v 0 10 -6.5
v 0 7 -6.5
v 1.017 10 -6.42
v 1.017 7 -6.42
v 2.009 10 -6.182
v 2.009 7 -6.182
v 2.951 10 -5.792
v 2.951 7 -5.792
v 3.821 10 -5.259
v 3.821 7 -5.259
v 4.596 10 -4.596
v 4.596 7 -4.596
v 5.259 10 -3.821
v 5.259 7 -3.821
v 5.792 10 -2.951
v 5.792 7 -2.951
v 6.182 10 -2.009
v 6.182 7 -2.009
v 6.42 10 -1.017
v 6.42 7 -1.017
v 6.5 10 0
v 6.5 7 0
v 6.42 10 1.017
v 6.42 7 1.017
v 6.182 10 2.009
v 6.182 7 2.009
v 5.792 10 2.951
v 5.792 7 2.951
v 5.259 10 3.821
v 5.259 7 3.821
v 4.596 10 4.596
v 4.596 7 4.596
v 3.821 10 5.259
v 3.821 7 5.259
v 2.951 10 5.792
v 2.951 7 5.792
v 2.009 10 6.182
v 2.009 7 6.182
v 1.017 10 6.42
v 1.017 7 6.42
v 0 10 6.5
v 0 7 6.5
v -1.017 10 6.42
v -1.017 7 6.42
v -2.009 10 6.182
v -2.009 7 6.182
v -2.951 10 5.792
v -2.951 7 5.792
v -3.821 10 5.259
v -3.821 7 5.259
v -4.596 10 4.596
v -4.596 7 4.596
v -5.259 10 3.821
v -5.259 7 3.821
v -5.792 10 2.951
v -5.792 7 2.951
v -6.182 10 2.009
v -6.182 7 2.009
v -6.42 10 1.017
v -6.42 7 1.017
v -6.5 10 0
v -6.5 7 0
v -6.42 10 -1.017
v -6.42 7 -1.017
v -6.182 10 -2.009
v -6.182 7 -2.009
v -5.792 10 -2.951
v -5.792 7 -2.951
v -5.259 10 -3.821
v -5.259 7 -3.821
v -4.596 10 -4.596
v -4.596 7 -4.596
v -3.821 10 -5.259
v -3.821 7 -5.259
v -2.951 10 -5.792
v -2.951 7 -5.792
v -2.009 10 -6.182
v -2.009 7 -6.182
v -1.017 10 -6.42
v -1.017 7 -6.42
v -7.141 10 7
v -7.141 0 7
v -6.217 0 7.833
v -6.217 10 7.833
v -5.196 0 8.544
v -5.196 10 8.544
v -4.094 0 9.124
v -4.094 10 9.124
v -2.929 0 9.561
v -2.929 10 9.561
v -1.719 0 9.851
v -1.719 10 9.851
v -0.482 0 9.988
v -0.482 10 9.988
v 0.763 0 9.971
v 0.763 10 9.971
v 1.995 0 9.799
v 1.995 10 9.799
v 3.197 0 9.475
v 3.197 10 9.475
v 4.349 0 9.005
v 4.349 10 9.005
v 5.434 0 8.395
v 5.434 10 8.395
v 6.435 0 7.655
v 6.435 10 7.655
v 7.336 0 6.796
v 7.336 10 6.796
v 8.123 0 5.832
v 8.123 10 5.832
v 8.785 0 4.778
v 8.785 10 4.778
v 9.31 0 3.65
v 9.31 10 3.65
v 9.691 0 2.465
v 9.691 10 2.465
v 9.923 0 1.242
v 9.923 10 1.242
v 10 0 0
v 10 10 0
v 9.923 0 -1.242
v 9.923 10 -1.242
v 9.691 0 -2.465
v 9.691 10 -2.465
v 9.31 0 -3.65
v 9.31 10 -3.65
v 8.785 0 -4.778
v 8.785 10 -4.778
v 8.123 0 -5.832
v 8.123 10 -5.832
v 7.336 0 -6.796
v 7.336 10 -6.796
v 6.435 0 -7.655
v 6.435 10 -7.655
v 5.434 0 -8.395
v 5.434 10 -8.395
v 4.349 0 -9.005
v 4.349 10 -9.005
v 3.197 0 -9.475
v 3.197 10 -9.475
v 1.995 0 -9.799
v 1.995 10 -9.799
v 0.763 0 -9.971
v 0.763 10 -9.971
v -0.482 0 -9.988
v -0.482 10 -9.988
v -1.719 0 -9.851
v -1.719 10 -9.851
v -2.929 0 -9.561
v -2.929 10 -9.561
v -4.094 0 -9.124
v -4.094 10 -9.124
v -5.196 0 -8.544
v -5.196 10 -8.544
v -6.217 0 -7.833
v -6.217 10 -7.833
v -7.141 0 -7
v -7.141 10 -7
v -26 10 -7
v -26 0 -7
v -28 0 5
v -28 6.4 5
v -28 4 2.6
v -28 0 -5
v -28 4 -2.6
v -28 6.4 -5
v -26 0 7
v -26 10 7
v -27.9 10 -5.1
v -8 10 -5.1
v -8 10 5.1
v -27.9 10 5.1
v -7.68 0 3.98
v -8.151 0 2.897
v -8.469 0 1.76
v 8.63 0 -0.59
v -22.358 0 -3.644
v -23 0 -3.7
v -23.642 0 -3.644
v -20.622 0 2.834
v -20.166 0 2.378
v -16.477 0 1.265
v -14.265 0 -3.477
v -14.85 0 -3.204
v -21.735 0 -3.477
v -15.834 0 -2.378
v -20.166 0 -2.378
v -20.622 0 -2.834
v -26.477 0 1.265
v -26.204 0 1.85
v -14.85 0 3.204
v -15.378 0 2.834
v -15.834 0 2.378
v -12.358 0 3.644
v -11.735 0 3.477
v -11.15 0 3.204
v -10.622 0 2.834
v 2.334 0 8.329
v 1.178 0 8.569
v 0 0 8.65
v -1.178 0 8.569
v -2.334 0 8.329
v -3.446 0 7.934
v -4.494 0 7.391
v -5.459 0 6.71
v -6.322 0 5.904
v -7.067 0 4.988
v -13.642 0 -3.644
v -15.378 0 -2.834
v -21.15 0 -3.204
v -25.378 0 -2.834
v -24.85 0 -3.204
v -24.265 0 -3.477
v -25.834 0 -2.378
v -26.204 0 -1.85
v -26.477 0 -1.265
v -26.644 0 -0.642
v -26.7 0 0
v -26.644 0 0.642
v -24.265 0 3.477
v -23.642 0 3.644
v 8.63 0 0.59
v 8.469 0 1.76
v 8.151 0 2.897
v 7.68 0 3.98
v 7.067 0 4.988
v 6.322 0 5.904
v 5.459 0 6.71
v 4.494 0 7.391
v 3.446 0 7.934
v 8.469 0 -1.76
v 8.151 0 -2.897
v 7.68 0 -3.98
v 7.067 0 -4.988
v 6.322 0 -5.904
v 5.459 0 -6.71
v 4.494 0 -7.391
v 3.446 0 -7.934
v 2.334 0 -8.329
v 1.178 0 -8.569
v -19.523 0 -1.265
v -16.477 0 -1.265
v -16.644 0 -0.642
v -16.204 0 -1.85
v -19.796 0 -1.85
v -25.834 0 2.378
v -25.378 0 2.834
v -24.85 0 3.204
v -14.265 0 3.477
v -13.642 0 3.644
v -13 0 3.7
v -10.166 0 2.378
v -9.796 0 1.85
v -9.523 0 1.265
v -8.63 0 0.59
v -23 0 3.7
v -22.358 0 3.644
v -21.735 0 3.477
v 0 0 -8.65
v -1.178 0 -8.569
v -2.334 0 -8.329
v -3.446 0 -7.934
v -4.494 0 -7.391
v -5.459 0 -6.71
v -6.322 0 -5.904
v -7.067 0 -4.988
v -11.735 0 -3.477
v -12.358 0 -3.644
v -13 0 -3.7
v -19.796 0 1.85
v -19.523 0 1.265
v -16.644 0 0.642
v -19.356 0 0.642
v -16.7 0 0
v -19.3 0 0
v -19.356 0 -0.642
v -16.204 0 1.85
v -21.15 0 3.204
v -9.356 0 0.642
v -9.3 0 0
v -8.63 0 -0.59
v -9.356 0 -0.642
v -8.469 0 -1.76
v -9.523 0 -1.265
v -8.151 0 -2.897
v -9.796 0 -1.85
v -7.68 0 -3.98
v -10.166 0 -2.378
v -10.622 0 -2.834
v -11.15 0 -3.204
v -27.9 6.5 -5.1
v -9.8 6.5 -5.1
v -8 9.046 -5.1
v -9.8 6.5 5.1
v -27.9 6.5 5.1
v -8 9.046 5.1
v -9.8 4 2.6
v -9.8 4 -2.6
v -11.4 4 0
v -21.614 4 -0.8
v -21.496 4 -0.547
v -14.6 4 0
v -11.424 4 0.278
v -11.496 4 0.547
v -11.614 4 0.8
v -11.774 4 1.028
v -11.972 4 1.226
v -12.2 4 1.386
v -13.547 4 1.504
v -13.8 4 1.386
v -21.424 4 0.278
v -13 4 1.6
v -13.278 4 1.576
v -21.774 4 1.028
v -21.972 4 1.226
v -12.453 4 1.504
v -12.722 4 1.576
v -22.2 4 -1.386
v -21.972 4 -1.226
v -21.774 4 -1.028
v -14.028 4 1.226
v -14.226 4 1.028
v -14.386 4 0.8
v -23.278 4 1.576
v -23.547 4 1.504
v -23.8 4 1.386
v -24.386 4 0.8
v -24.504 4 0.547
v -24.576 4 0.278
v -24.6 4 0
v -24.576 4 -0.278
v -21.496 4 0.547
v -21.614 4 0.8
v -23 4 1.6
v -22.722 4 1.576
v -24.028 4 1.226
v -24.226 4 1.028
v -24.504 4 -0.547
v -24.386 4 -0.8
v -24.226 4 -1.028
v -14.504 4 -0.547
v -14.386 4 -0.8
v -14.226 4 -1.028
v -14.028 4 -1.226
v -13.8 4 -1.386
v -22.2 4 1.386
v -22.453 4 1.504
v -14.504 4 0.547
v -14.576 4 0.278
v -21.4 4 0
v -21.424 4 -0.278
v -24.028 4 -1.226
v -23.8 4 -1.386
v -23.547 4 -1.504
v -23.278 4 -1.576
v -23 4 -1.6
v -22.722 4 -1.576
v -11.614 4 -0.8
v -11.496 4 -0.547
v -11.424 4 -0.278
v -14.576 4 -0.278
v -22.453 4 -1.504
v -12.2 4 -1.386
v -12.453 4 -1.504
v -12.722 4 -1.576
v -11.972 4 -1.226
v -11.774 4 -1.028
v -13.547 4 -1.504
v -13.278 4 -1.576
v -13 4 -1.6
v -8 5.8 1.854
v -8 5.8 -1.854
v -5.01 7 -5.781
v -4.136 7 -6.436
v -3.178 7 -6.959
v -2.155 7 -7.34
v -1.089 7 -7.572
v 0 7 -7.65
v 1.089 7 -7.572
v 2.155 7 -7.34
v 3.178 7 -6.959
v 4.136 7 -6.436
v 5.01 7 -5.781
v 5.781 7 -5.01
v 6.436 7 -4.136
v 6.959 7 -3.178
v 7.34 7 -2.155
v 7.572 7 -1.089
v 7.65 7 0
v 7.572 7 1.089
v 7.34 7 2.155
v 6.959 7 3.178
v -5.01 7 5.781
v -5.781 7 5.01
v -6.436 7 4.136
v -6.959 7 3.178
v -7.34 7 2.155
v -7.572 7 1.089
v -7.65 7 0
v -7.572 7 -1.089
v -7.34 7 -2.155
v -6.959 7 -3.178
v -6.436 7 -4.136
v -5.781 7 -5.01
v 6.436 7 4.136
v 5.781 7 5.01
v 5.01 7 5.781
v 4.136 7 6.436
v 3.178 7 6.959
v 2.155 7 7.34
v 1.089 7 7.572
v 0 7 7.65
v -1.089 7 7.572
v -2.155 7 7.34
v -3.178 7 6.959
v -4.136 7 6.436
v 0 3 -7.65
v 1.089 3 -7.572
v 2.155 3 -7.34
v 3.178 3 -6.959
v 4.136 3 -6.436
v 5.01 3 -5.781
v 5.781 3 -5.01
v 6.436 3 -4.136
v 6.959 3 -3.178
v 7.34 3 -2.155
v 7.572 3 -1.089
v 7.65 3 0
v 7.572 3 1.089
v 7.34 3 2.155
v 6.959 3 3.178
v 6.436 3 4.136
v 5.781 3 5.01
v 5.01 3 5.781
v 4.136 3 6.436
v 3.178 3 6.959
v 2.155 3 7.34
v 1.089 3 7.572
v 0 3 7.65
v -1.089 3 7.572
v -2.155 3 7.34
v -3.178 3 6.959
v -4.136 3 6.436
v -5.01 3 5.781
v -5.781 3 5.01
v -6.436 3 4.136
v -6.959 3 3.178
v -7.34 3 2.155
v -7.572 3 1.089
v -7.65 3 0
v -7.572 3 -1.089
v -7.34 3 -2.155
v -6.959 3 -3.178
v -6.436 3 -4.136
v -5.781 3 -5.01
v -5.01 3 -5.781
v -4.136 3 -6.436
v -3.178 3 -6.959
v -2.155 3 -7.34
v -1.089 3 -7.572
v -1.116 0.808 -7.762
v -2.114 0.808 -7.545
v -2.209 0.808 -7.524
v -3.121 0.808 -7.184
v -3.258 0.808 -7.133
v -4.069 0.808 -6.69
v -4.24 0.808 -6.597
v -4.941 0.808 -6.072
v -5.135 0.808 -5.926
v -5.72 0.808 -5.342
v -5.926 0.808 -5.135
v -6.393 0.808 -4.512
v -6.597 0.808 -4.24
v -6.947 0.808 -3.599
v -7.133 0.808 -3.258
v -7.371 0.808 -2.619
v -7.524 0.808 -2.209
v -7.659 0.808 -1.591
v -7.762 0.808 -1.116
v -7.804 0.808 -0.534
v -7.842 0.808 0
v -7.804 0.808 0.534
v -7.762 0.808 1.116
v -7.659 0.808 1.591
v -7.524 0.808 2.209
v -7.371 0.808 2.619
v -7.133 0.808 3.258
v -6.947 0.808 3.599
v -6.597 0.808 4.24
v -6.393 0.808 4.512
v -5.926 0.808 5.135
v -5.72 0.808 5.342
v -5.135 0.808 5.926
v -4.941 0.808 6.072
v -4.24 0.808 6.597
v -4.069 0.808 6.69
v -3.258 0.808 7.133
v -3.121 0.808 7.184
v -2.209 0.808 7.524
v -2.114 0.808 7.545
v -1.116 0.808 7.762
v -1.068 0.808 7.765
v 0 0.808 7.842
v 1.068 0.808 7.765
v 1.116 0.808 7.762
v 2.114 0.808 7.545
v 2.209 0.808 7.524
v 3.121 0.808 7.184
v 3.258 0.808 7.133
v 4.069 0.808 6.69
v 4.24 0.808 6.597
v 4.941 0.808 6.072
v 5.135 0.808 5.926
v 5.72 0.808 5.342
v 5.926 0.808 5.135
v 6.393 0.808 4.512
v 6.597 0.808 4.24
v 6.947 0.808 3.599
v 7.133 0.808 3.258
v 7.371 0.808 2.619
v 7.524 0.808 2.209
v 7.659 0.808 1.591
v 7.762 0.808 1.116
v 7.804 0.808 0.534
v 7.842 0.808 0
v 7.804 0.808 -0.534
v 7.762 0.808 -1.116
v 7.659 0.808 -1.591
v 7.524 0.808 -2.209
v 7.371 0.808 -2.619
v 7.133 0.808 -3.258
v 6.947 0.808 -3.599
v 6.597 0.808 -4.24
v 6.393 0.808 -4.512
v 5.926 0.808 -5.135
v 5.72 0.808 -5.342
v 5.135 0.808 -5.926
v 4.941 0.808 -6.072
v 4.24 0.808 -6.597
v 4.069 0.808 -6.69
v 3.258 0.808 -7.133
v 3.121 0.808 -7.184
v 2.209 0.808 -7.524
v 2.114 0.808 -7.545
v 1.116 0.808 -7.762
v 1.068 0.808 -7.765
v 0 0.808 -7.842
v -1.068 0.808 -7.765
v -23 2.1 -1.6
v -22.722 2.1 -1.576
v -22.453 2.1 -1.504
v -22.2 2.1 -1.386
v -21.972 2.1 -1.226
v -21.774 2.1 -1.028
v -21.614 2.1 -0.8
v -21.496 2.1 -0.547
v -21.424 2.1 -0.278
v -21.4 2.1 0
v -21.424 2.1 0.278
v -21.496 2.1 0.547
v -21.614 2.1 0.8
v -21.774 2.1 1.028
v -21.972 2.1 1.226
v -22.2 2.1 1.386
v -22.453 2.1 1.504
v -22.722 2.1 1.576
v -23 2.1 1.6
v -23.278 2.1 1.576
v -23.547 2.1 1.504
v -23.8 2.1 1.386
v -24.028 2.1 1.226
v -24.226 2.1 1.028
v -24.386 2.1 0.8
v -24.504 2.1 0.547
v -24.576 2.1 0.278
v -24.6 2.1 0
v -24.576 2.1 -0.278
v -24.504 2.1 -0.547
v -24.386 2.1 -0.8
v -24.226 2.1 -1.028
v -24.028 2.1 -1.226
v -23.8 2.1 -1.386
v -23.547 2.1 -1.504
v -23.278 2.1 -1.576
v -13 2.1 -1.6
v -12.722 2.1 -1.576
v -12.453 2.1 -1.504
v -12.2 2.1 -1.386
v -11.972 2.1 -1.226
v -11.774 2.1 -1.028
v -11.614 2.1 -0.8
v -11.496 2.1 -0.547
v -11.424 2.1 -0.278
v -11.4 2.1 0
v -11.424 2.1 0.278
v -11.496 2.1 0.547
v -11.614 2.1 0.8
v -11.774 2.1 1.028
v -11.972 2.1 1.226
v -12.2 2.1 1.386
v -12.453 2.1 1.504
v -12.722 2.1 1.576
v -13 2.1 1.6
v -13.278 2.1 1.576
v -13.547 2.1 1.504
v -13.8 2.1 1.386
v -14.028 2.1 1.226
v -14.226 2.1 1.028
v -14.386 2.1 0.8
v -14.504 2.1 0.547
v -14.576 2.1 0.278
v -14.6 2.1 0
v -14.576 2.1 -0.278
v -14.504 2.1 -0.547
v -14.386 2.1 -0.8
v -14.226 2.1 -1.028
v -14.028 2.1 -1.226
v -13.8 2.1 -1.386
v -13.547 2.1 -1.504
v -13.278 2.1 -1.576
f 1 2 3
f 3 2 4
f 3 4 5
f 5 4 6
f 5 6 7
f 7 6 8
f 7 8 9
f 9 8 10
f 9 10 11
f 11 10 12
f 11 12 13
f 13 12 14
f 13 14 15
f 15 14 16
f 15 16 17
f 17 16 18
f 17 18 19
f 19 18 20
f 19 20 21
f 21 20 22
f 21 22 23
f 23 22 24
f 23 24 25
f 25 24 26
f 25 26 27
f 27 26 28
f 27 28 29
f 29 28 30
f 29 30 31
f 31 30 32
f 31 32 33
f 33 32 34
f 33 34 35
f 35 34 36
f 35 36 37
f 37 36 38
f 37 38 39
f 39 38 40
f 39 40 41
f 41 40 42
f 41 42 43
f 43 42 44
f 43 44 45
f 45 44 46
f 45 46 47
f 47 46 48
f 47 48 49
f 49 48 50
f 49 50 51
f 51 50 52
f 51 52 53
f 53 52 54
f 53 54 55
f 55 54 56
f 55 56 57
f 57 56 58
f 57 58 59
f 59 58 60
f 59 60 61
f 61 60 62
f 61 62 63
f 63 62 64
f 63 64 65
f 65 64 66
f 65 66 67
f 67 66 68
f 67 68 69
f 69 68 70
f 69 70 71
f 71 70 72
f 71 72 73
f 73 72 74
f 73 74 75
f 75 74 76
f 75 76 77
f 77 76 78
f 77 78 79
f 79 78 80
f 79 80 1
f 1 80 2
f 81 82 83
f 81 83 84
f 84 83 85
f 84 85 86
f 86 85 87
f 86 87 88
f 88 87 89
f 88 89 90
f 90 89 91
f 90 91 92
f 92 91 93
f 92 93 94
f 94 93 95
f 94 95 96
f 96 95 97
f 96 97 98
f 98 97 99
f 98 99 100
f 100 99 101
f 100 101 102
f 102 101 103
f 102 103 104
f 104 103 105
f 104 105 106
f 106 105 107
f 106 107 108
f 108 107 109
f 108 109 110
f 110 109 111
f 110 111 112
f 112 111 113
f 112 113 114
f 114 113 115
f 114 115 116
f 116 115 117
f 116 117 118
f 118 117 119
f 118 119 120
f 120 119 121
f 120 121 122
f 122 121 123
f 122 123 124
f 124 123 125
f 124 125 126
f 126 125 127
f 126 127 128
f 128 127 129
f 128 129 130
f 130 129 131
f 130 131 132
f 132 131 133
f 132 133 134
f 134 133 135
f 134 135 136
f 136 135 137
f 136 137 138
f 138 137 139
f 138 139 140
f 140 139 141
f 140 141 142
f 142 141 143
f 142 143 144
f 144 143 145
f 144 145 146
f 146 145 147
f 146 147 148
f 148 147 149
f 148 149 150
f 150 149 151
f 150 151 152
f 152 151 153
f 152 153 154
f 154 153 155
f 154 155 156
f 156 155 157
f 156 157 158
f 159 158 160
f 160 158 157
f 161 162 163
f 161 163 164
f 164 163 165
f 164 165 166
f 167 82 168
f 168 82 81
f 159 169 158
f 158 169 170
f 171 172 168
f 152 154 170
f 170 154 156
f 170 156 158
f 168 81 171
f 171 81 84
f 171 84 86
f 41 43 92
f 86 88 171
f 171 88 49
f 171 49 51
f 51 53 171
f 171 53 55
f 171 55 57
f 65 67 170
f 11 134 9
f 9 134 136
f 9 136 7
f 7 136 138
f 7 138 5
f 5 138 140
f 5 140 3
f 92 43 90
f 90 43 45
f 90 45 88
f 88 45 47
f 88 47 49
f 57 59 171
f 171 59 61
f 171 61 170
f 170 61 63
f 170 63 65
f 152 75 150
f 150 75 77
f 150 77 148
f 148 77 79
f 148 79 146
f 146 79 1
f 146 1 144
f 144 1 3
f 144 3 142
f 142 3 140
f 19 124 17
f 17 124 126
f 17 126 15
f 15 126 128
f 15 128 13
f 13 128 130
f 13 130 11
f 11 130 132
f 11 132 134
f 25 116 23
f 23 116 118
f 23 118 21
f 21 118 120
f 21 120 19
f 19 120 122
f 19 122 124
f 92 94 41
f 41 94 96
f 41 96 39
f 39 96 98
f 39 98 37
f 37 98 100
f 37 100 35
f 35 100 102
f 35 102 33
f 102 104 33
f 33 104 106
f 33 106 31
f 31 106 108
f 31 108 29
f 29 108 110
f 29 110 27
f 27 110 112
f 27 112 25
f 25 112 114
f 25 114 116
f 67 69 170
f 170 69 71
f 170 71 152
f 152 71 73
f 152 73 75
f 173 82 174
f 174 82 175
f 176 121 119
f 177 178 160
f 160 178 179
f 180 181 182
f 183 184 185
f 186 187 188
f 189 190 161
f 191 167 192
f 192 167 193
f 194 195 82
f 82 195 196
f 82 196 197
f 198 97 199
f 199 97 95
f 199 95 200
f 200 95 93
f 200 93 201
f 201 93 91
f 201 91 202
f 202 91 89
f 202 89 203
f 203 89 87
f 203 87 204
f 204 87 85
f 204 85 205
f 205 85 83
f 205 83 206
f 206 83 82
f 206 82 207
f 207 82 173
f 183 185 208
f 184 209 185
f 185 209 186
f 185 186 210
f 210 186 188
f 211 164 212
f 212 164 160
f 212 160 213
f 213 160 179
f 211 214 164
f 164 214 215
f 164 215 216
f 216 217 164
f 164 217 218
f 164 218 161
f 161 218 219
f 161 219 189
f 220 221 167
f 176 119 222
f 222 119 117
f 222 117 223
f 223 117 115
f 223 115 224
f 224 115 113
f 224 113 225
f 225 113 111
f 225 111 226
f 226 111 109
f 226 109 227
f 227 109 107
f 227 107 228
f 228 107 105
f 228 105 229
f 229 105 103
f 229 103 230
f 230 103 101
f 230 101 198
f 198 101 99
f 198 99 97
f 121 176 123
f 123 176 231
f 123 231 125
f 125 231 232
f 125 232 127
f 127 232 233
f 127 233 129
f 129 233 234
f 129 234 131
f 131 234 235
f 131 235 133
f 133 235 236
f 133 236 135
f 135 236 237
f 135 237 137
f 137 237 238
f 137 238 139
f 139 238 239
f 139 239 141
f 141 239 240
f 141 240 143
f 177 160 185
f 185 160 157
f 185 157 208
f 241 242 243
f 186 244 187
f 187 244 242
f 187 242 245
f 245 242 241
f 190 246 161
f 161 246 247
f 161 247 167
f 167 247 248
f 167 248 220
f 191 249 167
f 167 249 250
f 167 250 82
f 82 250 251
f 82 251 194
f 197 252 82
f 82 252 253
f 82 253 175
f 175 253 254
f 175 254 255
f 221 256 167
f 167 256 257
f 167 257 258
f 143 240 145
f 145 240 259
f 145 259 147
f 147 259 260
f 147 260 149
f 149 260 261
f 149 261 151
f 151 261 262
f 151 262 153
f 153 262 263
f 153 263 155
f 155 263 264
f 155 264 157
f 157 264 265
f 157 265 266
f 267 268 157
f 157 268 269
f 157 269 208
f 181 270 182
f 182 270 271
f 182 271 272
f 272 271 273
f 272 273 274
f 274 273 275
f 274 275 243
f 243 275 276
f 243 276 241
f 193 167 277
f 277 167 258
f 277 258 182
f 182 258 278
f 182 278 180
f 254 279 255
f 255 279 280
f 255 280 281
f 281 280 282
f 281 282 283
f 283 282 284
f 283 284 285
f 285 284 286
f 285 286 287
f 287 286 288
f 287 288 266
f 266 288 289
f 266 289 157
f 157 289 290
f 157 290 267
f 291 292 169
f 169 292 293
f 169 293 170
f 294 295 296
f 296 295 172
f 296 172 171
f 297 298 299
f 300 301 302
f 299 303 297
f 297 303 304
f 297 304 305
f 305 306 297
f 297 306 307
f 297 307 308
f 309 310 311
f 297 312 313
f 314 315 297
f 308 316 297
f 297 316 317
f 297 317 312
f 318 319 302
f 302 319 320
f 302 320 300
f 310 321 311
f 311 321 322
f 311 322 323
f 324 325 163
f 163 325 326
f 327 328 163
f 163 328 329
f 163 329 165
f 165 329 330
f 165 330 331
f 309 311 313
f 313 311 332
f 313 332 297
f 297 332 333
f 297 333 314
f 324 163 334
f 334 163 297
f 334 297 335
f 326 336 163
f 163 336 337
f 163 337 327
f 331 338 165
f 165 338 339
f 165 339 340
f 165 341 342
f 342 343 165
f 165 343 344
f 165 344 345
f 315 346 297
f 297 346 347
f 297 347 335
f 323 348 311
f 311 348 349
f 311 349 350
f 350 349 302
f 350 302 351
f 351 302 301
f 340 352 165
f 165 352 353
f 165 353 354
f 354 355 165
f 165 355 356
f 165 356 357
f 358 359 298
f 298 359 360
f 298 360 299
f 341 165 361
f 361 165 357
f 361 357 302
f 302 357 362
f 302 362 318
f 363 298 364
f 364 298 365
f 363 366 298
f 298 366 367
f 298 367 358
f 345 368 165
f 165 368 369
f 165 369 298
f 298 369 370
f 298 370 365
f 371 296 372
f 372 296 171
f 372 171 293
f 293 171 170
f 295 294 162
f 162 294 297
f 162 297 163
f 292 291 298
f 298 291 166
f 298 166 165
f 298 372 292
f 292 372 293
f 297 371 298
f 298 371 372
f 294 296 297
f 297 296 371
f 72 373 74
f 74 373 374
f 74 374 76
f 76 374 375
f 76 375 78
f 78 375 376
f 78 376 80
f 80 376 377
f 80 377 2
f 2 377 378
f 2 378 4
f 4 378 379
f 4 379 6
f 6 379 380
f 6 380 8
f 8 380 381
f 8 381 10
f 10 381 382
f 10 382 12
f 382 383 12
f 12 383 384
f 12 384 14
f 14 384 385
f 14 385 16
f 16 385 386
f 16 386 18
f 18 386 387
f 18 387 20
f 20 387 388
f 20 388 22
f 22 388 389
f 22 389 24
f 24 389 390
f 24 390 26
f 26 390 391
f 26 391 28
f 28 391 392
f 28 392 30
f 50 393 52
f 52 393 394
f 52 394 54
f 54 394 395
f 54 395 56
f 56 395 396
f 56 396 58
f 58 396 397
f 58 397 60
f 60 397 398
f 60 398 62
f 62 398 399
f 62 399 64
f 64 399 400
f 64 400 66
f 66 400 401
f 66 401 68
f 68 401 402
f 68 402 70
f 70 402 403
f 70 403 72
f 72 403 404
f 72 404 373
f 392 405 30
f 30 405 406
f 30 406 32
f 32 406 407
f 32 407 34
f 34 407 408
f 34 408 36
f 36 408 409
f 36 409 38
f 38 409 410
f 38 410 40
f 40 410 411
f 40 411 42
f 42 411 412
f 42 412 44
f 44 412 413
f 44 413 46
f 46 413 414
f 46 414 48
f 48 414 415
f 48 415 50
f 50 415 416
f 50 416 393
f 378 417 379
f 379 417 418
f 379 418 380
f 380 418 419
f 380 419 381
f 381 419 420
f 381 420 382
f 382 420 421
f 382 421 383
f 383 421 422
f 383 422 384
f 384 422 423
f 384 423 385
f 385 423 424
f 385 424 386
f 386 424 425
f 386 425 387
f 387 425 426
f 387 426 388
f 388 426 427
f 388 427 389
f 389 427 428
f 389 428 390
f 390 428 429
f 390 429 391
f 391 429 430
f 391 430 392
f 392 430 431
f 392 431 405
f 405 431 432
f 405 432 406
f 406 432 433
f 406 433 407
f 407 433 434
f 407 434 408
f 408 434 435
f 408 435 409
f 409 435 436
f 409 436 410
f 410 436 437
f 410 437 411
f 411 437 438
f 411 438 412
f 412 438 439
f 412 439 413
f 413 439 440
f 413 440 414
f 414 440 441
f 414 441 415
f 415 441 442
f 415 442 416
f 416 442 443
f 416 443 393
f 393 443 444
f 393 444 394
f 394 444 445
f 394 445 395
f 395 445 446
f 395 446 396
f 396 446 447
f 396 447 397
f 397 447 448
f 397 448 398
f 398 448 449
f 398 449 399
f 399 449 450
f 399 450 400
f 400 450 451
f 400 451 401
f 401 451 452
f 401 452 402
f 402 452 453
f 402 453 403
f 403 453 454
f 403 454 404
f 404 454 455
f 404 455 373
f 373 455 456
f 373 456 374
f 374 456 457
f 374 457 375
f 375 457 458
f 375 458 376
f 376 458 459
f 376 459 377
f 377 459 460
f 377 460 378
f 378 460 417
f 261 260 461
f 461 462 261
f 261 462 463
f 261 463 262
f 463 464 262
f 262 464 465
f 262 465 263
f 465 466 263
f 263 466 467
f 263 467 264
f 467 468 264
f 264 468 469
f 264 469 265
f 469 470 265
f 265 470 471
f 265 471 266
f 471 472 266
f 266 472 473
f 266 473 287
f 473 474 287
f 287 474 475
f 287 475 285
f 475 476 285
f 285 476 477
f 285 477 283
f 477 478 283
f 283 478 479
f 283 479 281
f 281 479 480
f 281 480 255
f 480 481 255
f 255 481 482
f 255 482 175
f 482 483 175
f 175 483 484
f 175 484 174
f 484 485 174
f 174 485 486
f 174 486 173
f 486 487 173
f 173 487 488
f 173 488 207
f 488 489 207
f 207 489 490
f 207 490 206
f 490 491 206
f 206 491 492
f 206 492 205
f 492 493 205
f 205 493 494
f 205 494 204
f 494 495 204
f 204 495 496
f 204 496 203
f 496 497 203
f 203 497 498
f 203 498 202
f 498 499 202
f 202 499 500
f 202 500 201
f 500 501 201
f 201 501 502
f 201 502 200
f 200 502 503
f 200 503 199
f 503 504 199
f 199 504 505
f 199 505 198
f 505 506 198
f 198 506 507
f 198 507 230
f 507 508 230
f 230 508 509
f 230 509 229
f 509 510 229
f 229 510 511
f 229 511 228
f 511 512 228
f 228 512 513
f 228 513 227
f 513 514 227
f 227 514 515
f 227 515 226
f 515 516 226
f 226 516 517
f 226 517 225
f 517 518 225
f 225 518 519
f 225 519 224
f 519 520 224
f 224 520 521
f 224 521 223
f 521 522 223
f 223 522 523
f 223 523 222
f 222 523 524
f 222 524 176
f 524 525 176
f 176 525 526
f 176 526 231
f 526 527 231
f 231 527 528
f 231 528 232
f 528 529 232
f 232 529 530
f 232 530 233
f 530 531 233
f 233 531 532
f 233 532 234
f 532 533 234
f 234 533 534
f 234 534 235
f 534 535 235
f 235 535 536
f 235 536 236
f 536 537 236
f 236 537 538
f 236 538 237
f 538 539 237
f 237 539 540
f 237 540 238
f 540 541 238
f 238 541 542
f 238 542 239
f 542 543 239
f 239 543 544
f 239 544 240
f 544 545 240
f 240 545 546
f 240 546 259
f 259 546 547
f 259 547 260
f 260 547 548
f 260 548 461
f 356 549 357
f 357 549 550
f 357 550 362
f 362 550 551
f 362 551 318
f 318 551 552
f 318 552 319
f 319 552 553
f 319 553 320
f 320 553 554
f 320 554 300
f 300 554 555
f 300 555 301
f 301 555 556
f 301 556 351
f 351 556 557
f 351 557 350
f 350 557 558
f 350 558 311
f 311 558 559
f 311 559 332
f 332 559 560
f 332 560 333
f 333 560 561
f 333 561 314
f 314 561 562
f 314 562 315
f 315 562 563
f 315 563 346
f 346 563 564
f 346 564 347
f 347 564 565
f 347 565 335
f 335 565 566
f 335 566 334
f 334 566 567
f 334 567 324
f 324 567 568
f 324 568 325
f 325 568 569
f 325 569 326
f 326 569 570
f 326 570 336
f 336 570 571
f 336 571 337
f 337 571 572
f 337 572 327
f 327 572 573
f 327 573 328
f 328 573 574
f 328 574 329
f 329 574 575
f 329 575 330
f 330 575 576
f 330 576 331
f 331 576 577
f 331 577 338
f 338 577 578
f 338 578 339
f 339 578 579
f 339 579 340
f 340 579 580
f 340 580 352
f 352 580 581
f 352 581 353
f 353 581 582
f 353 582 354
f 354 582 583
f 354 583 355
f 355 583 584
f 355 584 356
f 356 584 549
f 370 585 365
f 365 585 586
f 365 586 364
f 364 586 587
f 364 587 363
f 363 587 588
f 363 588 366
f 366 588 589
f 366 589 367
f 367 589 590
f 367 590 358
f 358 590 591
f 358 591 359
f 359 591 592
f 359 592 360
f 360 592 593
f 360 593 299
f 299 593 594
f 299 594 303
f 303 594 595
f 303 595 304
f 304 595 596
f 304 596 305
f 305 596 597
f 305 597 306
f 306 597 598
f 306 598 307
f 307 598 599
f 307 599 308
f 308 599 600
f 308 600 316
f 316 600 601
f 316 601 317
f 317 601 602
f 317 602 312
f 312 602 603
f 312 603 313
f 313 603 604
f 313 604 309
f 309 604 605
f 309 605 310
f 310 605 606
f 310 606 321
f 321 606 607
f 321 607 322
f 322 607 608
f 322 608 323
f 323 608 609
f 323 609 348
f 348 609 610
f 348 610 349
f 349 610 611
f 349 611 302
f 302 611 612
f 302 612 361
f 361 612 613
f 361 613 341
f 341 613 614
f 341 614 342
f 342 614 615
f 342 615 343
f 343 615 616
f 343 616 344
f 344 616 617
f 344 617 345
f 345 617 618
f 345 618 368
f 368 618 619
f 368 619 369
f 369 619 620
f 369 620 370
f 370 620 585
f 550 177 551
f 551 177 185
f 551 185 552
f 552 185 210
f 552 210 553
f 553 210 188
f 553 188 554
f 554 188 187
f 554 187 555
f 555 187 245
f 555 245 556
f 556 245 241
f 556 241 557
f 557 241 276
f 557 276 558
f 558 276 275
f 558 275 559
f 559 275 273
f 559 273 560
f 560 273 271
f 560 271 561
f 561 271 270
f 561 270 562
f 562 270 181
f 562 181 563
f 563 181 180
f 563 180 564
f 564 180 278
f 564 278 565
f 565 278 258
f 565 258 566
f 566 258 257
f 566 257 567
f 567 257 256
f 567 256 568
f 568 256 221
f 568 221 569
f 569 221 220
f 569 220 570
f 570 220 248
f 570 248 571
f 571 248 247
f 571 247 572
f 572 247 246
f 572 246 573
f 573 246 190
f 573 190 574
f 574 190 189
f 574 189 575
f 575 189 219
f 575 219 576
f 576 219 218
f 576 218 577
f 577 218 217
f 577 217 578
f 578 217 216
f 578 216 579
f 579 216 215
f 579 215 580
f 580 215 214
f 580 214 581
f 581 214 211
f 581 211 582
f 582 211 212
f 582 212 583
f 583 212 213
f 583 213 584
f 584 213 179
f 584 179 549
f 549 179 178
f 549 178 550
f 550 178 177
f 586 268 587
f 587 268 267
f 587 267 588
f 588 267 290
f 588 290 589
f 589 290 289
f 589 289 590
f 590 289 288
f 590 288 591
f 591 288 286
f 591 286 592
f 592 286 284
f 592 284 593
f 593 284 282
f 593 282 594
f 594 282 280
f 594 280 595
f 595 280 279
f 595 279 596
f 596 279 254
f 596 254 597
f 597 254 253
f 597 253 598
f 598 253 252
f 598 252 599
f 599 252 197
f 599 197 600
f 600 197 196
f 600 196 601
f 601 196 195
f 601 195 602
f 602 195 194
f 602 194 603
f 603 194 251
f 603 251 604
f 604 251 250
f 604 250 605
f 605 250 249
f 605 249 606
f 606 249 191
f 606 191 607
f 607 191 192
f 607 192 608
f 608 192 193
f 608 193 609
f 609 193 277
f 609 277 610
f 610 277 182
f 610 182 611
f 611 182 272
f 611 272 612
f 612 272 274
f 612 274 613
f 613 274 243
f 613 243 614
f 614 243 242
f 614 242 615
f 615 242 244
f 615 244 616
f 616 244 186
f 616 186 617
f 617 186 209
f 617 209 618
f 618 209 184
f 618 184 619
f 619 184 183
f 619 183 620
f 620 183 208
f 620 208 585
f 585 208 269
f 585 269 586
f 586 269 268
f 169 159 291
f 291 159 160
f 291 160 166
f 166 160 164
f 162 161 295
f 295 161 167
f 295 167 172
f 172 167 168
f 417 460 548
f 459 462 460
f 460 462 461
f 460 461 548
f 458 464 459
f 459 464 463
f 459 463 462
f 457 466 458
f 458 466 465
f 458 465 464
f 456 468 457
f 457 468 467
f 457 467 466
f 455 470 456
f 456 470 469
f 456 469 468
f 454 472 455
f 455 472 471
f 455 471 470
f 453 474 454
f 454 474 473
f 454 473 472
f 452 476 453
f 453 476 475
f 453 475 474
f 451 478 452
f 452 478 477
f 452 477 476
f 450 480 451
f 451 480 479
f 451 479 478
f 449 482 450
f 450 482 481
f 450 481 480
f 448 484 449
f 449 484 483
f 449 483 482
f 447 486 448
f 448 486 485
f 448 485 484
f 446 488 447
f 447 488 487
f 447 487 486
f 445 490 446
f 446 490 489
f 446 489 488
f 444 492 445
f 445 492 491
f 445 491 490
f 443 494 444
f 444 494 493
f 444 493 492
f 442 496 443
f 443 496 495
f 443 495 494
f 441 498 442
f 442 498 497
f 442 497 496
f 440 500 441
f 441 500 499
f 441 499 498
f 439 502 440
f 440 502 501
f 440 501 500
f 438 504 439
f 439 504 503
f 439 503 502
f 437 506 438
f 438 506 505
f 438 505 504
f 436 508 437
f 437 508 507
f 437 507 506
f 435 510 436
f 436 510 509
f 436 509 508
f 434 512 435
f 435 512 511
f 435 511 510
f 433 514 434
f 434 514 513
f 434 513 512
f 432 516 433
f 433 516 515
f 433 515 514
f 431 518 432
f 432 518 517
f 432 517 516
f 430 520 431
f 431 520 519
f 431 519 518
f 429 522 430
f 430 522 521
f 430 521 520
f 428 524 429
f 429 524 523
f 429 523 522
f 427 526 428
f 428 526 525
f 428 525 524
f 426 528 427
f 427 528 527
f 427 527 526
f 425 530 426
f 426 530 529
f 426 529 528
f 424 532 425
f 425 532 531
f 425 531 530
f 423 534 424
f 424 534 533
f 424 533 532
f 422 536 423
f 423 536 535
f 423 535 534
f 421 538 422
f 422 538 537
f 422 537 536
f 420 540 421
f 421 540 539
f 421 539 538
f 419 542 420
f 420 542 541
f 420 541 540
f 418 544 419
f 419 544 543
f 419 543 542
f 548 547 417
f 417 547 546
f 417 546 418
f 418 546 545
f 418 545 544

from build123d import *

# Parameters (mm, degrees)
BOSS_EXTRU_1_DEPTH      = 10
ESQUISSE2_W             = 10.2
ESQUISSE2_H             = 6
ENL_V_MAT_EXTRU_1_DEPTH = 20
CHANFREIN1_SIZE         = 2.5
CHANFREIN2_SIZE         = 1.8
ESQUISSE3_R             = 6.5
ENL_V_MAT_EXTRU_2_DEPTH = 32.368774283
ESQUISSE4_R             = 7.65
ENL_V_MAT_EXTRU_3_DEPTH = 7
CHANFREIN3_SIZE         = 1
ESQUISSE5_R             = 1.6
ENL_V_MAT_EXTRU_4_DEPTH = 7
CHANFREIN4_SIZE         = 2.1
CHANFREIN5_SIZE         = 2
CHANFREIN6_SIZE         = 2
CHANFREIN6_SIZE2        = 0.271180531


with BuildPart() as part:
    # Esquisse1 → Boss.-Extru.1 (new body)
    with BuildSketch(Plane(origin=(0, 0, 0), x_dir=(1, 0, 0), z_dir=(0, 1, 0))):
        with BuildLine():
            Line((-28, -7), (-7.141428429, -7))
            ThreePointArc((-7.141428429, -7), (10, 0), (-7.141428429, 7))
            Line((-7.141428429, 7), (-28, 7))
            Line((-28, 7), (-28, -7))
        make_face()
    extrude(amount=BOSS_EXTRU_1_DEPTH)

    # Esquisse2 → Enlèv. mat.-Extru.1 (cut)
    with BuildSketch(Plane.ZY.offset(28)):
        with Locations((0, 7)):
            Rectangle(ESQUISSE2_W, ESQUISSE2_H)
    extrude(amount=-ENL_V_MAT_EXTRU_1_DEPTH, mode=Mode.SUBTRACT)

    # Chanfrein1
    chanfrein1_edges = [part.edges().sort_by_distance(p)[0] for p in [
        (-18, 4, -5.1),
        (-18, 4, 5.1),
    ]]
    chamfer(chanfrein1_edges, length=CHANFREIN1_SIZE)

    # Chanfrein2
    chanfrein2_edges = [part.edges().sort_by_distance(p)[0] for p in [
        (-8, 4, 0),
        (-8, 5.25, -3.85),
        (-8, 5.25, 3.85),
    ]]
    chamfer(chanfrein2_edges, length=CHANFREIN2_SIZE)

    # Esquisse3 → Enlèv. mat.-Extru.2 (cut, through all)
    with BuildSketch(Plane.XZ):
        with Locations(Location((0, 0, 0), (0, 0, 270))):
            Circle(ESQUISSE3_R)
    extrude(amount=-ENL_V_MAT_EXTRU_2_DEPTH, mode=Mode.SUBTRACT)

    # Esquisse4 → Enlèv. mat.-Extru.3 (cut)
    with BuildSketch(Plane.XZ):
        with Locations(Location((0, 0, 0), (0, 0, 270))):
            Circle(ESQUISSE4_R)
    extrude(amount=-ENL_V_MAT_EXTRU_3_DEPTH, mode=Mode.SUBTRACT)

    # Chanfrein3
    chanfrein3_edges = [part.edges().sort_by_distance(p)[0] for p in [
        (0, 0, 7.65),
    ]]
    chamfer(chanfrein3_edges, length=CHANFREIN3_SIZE)

    # Esquisse5 → Enlèv. mat.-Extru.4 (cut)
    with BuildSketch(Plane.XZ):
        with Locations(Location((-23, 0, 0), (0, 0, 270))):
            Circle(ESQUISSE5_R)
        with Locations(Location((-13, 0, 0), (0, 0, 270))):
            Circle(ESQUISSE5_R)
    extrude(amount=-ENL_V_MAT_EXTRU_4_DEPTH, mode=Mode.SUBTRACT)

    # Chanfrein4
    chanfrein4_edges = [part.edges().sort_by_distance(p)[0] for p in [
        (-23, 0, 1.6),
        (-13, 0, 1.6),
    ]]
    chamfer(chanfrein4_edges, length=CHANFREIN4_SIZE)

    # Chanfrein5
    chanfrein5_edges = [part.edges().sort_by_distance(p)[0] for p in [
        (-28, 5, -7),
        (-28, 5, 7),
    ]]
    chamfer(chanfrein5_edges, length=CHANFREIN5_SIZE)

    # Chanfrein6
    chanfrein6_edges = [part.edges().sort_by_distance(p)[0] for p in [
        (0, 1, 7.65),
    ]]
    chanfrein6_side = [part.faces().sort_by_distance(p)[0] for p in [
        (0, 4, 7.65),
    ]]
    chamfer(chanfrein6_edges, length=CHANFREIN6_SIZE, length2=CHANFREIN6_SIZE2, reference=chanfrein6_side[0])


solid = part.part
